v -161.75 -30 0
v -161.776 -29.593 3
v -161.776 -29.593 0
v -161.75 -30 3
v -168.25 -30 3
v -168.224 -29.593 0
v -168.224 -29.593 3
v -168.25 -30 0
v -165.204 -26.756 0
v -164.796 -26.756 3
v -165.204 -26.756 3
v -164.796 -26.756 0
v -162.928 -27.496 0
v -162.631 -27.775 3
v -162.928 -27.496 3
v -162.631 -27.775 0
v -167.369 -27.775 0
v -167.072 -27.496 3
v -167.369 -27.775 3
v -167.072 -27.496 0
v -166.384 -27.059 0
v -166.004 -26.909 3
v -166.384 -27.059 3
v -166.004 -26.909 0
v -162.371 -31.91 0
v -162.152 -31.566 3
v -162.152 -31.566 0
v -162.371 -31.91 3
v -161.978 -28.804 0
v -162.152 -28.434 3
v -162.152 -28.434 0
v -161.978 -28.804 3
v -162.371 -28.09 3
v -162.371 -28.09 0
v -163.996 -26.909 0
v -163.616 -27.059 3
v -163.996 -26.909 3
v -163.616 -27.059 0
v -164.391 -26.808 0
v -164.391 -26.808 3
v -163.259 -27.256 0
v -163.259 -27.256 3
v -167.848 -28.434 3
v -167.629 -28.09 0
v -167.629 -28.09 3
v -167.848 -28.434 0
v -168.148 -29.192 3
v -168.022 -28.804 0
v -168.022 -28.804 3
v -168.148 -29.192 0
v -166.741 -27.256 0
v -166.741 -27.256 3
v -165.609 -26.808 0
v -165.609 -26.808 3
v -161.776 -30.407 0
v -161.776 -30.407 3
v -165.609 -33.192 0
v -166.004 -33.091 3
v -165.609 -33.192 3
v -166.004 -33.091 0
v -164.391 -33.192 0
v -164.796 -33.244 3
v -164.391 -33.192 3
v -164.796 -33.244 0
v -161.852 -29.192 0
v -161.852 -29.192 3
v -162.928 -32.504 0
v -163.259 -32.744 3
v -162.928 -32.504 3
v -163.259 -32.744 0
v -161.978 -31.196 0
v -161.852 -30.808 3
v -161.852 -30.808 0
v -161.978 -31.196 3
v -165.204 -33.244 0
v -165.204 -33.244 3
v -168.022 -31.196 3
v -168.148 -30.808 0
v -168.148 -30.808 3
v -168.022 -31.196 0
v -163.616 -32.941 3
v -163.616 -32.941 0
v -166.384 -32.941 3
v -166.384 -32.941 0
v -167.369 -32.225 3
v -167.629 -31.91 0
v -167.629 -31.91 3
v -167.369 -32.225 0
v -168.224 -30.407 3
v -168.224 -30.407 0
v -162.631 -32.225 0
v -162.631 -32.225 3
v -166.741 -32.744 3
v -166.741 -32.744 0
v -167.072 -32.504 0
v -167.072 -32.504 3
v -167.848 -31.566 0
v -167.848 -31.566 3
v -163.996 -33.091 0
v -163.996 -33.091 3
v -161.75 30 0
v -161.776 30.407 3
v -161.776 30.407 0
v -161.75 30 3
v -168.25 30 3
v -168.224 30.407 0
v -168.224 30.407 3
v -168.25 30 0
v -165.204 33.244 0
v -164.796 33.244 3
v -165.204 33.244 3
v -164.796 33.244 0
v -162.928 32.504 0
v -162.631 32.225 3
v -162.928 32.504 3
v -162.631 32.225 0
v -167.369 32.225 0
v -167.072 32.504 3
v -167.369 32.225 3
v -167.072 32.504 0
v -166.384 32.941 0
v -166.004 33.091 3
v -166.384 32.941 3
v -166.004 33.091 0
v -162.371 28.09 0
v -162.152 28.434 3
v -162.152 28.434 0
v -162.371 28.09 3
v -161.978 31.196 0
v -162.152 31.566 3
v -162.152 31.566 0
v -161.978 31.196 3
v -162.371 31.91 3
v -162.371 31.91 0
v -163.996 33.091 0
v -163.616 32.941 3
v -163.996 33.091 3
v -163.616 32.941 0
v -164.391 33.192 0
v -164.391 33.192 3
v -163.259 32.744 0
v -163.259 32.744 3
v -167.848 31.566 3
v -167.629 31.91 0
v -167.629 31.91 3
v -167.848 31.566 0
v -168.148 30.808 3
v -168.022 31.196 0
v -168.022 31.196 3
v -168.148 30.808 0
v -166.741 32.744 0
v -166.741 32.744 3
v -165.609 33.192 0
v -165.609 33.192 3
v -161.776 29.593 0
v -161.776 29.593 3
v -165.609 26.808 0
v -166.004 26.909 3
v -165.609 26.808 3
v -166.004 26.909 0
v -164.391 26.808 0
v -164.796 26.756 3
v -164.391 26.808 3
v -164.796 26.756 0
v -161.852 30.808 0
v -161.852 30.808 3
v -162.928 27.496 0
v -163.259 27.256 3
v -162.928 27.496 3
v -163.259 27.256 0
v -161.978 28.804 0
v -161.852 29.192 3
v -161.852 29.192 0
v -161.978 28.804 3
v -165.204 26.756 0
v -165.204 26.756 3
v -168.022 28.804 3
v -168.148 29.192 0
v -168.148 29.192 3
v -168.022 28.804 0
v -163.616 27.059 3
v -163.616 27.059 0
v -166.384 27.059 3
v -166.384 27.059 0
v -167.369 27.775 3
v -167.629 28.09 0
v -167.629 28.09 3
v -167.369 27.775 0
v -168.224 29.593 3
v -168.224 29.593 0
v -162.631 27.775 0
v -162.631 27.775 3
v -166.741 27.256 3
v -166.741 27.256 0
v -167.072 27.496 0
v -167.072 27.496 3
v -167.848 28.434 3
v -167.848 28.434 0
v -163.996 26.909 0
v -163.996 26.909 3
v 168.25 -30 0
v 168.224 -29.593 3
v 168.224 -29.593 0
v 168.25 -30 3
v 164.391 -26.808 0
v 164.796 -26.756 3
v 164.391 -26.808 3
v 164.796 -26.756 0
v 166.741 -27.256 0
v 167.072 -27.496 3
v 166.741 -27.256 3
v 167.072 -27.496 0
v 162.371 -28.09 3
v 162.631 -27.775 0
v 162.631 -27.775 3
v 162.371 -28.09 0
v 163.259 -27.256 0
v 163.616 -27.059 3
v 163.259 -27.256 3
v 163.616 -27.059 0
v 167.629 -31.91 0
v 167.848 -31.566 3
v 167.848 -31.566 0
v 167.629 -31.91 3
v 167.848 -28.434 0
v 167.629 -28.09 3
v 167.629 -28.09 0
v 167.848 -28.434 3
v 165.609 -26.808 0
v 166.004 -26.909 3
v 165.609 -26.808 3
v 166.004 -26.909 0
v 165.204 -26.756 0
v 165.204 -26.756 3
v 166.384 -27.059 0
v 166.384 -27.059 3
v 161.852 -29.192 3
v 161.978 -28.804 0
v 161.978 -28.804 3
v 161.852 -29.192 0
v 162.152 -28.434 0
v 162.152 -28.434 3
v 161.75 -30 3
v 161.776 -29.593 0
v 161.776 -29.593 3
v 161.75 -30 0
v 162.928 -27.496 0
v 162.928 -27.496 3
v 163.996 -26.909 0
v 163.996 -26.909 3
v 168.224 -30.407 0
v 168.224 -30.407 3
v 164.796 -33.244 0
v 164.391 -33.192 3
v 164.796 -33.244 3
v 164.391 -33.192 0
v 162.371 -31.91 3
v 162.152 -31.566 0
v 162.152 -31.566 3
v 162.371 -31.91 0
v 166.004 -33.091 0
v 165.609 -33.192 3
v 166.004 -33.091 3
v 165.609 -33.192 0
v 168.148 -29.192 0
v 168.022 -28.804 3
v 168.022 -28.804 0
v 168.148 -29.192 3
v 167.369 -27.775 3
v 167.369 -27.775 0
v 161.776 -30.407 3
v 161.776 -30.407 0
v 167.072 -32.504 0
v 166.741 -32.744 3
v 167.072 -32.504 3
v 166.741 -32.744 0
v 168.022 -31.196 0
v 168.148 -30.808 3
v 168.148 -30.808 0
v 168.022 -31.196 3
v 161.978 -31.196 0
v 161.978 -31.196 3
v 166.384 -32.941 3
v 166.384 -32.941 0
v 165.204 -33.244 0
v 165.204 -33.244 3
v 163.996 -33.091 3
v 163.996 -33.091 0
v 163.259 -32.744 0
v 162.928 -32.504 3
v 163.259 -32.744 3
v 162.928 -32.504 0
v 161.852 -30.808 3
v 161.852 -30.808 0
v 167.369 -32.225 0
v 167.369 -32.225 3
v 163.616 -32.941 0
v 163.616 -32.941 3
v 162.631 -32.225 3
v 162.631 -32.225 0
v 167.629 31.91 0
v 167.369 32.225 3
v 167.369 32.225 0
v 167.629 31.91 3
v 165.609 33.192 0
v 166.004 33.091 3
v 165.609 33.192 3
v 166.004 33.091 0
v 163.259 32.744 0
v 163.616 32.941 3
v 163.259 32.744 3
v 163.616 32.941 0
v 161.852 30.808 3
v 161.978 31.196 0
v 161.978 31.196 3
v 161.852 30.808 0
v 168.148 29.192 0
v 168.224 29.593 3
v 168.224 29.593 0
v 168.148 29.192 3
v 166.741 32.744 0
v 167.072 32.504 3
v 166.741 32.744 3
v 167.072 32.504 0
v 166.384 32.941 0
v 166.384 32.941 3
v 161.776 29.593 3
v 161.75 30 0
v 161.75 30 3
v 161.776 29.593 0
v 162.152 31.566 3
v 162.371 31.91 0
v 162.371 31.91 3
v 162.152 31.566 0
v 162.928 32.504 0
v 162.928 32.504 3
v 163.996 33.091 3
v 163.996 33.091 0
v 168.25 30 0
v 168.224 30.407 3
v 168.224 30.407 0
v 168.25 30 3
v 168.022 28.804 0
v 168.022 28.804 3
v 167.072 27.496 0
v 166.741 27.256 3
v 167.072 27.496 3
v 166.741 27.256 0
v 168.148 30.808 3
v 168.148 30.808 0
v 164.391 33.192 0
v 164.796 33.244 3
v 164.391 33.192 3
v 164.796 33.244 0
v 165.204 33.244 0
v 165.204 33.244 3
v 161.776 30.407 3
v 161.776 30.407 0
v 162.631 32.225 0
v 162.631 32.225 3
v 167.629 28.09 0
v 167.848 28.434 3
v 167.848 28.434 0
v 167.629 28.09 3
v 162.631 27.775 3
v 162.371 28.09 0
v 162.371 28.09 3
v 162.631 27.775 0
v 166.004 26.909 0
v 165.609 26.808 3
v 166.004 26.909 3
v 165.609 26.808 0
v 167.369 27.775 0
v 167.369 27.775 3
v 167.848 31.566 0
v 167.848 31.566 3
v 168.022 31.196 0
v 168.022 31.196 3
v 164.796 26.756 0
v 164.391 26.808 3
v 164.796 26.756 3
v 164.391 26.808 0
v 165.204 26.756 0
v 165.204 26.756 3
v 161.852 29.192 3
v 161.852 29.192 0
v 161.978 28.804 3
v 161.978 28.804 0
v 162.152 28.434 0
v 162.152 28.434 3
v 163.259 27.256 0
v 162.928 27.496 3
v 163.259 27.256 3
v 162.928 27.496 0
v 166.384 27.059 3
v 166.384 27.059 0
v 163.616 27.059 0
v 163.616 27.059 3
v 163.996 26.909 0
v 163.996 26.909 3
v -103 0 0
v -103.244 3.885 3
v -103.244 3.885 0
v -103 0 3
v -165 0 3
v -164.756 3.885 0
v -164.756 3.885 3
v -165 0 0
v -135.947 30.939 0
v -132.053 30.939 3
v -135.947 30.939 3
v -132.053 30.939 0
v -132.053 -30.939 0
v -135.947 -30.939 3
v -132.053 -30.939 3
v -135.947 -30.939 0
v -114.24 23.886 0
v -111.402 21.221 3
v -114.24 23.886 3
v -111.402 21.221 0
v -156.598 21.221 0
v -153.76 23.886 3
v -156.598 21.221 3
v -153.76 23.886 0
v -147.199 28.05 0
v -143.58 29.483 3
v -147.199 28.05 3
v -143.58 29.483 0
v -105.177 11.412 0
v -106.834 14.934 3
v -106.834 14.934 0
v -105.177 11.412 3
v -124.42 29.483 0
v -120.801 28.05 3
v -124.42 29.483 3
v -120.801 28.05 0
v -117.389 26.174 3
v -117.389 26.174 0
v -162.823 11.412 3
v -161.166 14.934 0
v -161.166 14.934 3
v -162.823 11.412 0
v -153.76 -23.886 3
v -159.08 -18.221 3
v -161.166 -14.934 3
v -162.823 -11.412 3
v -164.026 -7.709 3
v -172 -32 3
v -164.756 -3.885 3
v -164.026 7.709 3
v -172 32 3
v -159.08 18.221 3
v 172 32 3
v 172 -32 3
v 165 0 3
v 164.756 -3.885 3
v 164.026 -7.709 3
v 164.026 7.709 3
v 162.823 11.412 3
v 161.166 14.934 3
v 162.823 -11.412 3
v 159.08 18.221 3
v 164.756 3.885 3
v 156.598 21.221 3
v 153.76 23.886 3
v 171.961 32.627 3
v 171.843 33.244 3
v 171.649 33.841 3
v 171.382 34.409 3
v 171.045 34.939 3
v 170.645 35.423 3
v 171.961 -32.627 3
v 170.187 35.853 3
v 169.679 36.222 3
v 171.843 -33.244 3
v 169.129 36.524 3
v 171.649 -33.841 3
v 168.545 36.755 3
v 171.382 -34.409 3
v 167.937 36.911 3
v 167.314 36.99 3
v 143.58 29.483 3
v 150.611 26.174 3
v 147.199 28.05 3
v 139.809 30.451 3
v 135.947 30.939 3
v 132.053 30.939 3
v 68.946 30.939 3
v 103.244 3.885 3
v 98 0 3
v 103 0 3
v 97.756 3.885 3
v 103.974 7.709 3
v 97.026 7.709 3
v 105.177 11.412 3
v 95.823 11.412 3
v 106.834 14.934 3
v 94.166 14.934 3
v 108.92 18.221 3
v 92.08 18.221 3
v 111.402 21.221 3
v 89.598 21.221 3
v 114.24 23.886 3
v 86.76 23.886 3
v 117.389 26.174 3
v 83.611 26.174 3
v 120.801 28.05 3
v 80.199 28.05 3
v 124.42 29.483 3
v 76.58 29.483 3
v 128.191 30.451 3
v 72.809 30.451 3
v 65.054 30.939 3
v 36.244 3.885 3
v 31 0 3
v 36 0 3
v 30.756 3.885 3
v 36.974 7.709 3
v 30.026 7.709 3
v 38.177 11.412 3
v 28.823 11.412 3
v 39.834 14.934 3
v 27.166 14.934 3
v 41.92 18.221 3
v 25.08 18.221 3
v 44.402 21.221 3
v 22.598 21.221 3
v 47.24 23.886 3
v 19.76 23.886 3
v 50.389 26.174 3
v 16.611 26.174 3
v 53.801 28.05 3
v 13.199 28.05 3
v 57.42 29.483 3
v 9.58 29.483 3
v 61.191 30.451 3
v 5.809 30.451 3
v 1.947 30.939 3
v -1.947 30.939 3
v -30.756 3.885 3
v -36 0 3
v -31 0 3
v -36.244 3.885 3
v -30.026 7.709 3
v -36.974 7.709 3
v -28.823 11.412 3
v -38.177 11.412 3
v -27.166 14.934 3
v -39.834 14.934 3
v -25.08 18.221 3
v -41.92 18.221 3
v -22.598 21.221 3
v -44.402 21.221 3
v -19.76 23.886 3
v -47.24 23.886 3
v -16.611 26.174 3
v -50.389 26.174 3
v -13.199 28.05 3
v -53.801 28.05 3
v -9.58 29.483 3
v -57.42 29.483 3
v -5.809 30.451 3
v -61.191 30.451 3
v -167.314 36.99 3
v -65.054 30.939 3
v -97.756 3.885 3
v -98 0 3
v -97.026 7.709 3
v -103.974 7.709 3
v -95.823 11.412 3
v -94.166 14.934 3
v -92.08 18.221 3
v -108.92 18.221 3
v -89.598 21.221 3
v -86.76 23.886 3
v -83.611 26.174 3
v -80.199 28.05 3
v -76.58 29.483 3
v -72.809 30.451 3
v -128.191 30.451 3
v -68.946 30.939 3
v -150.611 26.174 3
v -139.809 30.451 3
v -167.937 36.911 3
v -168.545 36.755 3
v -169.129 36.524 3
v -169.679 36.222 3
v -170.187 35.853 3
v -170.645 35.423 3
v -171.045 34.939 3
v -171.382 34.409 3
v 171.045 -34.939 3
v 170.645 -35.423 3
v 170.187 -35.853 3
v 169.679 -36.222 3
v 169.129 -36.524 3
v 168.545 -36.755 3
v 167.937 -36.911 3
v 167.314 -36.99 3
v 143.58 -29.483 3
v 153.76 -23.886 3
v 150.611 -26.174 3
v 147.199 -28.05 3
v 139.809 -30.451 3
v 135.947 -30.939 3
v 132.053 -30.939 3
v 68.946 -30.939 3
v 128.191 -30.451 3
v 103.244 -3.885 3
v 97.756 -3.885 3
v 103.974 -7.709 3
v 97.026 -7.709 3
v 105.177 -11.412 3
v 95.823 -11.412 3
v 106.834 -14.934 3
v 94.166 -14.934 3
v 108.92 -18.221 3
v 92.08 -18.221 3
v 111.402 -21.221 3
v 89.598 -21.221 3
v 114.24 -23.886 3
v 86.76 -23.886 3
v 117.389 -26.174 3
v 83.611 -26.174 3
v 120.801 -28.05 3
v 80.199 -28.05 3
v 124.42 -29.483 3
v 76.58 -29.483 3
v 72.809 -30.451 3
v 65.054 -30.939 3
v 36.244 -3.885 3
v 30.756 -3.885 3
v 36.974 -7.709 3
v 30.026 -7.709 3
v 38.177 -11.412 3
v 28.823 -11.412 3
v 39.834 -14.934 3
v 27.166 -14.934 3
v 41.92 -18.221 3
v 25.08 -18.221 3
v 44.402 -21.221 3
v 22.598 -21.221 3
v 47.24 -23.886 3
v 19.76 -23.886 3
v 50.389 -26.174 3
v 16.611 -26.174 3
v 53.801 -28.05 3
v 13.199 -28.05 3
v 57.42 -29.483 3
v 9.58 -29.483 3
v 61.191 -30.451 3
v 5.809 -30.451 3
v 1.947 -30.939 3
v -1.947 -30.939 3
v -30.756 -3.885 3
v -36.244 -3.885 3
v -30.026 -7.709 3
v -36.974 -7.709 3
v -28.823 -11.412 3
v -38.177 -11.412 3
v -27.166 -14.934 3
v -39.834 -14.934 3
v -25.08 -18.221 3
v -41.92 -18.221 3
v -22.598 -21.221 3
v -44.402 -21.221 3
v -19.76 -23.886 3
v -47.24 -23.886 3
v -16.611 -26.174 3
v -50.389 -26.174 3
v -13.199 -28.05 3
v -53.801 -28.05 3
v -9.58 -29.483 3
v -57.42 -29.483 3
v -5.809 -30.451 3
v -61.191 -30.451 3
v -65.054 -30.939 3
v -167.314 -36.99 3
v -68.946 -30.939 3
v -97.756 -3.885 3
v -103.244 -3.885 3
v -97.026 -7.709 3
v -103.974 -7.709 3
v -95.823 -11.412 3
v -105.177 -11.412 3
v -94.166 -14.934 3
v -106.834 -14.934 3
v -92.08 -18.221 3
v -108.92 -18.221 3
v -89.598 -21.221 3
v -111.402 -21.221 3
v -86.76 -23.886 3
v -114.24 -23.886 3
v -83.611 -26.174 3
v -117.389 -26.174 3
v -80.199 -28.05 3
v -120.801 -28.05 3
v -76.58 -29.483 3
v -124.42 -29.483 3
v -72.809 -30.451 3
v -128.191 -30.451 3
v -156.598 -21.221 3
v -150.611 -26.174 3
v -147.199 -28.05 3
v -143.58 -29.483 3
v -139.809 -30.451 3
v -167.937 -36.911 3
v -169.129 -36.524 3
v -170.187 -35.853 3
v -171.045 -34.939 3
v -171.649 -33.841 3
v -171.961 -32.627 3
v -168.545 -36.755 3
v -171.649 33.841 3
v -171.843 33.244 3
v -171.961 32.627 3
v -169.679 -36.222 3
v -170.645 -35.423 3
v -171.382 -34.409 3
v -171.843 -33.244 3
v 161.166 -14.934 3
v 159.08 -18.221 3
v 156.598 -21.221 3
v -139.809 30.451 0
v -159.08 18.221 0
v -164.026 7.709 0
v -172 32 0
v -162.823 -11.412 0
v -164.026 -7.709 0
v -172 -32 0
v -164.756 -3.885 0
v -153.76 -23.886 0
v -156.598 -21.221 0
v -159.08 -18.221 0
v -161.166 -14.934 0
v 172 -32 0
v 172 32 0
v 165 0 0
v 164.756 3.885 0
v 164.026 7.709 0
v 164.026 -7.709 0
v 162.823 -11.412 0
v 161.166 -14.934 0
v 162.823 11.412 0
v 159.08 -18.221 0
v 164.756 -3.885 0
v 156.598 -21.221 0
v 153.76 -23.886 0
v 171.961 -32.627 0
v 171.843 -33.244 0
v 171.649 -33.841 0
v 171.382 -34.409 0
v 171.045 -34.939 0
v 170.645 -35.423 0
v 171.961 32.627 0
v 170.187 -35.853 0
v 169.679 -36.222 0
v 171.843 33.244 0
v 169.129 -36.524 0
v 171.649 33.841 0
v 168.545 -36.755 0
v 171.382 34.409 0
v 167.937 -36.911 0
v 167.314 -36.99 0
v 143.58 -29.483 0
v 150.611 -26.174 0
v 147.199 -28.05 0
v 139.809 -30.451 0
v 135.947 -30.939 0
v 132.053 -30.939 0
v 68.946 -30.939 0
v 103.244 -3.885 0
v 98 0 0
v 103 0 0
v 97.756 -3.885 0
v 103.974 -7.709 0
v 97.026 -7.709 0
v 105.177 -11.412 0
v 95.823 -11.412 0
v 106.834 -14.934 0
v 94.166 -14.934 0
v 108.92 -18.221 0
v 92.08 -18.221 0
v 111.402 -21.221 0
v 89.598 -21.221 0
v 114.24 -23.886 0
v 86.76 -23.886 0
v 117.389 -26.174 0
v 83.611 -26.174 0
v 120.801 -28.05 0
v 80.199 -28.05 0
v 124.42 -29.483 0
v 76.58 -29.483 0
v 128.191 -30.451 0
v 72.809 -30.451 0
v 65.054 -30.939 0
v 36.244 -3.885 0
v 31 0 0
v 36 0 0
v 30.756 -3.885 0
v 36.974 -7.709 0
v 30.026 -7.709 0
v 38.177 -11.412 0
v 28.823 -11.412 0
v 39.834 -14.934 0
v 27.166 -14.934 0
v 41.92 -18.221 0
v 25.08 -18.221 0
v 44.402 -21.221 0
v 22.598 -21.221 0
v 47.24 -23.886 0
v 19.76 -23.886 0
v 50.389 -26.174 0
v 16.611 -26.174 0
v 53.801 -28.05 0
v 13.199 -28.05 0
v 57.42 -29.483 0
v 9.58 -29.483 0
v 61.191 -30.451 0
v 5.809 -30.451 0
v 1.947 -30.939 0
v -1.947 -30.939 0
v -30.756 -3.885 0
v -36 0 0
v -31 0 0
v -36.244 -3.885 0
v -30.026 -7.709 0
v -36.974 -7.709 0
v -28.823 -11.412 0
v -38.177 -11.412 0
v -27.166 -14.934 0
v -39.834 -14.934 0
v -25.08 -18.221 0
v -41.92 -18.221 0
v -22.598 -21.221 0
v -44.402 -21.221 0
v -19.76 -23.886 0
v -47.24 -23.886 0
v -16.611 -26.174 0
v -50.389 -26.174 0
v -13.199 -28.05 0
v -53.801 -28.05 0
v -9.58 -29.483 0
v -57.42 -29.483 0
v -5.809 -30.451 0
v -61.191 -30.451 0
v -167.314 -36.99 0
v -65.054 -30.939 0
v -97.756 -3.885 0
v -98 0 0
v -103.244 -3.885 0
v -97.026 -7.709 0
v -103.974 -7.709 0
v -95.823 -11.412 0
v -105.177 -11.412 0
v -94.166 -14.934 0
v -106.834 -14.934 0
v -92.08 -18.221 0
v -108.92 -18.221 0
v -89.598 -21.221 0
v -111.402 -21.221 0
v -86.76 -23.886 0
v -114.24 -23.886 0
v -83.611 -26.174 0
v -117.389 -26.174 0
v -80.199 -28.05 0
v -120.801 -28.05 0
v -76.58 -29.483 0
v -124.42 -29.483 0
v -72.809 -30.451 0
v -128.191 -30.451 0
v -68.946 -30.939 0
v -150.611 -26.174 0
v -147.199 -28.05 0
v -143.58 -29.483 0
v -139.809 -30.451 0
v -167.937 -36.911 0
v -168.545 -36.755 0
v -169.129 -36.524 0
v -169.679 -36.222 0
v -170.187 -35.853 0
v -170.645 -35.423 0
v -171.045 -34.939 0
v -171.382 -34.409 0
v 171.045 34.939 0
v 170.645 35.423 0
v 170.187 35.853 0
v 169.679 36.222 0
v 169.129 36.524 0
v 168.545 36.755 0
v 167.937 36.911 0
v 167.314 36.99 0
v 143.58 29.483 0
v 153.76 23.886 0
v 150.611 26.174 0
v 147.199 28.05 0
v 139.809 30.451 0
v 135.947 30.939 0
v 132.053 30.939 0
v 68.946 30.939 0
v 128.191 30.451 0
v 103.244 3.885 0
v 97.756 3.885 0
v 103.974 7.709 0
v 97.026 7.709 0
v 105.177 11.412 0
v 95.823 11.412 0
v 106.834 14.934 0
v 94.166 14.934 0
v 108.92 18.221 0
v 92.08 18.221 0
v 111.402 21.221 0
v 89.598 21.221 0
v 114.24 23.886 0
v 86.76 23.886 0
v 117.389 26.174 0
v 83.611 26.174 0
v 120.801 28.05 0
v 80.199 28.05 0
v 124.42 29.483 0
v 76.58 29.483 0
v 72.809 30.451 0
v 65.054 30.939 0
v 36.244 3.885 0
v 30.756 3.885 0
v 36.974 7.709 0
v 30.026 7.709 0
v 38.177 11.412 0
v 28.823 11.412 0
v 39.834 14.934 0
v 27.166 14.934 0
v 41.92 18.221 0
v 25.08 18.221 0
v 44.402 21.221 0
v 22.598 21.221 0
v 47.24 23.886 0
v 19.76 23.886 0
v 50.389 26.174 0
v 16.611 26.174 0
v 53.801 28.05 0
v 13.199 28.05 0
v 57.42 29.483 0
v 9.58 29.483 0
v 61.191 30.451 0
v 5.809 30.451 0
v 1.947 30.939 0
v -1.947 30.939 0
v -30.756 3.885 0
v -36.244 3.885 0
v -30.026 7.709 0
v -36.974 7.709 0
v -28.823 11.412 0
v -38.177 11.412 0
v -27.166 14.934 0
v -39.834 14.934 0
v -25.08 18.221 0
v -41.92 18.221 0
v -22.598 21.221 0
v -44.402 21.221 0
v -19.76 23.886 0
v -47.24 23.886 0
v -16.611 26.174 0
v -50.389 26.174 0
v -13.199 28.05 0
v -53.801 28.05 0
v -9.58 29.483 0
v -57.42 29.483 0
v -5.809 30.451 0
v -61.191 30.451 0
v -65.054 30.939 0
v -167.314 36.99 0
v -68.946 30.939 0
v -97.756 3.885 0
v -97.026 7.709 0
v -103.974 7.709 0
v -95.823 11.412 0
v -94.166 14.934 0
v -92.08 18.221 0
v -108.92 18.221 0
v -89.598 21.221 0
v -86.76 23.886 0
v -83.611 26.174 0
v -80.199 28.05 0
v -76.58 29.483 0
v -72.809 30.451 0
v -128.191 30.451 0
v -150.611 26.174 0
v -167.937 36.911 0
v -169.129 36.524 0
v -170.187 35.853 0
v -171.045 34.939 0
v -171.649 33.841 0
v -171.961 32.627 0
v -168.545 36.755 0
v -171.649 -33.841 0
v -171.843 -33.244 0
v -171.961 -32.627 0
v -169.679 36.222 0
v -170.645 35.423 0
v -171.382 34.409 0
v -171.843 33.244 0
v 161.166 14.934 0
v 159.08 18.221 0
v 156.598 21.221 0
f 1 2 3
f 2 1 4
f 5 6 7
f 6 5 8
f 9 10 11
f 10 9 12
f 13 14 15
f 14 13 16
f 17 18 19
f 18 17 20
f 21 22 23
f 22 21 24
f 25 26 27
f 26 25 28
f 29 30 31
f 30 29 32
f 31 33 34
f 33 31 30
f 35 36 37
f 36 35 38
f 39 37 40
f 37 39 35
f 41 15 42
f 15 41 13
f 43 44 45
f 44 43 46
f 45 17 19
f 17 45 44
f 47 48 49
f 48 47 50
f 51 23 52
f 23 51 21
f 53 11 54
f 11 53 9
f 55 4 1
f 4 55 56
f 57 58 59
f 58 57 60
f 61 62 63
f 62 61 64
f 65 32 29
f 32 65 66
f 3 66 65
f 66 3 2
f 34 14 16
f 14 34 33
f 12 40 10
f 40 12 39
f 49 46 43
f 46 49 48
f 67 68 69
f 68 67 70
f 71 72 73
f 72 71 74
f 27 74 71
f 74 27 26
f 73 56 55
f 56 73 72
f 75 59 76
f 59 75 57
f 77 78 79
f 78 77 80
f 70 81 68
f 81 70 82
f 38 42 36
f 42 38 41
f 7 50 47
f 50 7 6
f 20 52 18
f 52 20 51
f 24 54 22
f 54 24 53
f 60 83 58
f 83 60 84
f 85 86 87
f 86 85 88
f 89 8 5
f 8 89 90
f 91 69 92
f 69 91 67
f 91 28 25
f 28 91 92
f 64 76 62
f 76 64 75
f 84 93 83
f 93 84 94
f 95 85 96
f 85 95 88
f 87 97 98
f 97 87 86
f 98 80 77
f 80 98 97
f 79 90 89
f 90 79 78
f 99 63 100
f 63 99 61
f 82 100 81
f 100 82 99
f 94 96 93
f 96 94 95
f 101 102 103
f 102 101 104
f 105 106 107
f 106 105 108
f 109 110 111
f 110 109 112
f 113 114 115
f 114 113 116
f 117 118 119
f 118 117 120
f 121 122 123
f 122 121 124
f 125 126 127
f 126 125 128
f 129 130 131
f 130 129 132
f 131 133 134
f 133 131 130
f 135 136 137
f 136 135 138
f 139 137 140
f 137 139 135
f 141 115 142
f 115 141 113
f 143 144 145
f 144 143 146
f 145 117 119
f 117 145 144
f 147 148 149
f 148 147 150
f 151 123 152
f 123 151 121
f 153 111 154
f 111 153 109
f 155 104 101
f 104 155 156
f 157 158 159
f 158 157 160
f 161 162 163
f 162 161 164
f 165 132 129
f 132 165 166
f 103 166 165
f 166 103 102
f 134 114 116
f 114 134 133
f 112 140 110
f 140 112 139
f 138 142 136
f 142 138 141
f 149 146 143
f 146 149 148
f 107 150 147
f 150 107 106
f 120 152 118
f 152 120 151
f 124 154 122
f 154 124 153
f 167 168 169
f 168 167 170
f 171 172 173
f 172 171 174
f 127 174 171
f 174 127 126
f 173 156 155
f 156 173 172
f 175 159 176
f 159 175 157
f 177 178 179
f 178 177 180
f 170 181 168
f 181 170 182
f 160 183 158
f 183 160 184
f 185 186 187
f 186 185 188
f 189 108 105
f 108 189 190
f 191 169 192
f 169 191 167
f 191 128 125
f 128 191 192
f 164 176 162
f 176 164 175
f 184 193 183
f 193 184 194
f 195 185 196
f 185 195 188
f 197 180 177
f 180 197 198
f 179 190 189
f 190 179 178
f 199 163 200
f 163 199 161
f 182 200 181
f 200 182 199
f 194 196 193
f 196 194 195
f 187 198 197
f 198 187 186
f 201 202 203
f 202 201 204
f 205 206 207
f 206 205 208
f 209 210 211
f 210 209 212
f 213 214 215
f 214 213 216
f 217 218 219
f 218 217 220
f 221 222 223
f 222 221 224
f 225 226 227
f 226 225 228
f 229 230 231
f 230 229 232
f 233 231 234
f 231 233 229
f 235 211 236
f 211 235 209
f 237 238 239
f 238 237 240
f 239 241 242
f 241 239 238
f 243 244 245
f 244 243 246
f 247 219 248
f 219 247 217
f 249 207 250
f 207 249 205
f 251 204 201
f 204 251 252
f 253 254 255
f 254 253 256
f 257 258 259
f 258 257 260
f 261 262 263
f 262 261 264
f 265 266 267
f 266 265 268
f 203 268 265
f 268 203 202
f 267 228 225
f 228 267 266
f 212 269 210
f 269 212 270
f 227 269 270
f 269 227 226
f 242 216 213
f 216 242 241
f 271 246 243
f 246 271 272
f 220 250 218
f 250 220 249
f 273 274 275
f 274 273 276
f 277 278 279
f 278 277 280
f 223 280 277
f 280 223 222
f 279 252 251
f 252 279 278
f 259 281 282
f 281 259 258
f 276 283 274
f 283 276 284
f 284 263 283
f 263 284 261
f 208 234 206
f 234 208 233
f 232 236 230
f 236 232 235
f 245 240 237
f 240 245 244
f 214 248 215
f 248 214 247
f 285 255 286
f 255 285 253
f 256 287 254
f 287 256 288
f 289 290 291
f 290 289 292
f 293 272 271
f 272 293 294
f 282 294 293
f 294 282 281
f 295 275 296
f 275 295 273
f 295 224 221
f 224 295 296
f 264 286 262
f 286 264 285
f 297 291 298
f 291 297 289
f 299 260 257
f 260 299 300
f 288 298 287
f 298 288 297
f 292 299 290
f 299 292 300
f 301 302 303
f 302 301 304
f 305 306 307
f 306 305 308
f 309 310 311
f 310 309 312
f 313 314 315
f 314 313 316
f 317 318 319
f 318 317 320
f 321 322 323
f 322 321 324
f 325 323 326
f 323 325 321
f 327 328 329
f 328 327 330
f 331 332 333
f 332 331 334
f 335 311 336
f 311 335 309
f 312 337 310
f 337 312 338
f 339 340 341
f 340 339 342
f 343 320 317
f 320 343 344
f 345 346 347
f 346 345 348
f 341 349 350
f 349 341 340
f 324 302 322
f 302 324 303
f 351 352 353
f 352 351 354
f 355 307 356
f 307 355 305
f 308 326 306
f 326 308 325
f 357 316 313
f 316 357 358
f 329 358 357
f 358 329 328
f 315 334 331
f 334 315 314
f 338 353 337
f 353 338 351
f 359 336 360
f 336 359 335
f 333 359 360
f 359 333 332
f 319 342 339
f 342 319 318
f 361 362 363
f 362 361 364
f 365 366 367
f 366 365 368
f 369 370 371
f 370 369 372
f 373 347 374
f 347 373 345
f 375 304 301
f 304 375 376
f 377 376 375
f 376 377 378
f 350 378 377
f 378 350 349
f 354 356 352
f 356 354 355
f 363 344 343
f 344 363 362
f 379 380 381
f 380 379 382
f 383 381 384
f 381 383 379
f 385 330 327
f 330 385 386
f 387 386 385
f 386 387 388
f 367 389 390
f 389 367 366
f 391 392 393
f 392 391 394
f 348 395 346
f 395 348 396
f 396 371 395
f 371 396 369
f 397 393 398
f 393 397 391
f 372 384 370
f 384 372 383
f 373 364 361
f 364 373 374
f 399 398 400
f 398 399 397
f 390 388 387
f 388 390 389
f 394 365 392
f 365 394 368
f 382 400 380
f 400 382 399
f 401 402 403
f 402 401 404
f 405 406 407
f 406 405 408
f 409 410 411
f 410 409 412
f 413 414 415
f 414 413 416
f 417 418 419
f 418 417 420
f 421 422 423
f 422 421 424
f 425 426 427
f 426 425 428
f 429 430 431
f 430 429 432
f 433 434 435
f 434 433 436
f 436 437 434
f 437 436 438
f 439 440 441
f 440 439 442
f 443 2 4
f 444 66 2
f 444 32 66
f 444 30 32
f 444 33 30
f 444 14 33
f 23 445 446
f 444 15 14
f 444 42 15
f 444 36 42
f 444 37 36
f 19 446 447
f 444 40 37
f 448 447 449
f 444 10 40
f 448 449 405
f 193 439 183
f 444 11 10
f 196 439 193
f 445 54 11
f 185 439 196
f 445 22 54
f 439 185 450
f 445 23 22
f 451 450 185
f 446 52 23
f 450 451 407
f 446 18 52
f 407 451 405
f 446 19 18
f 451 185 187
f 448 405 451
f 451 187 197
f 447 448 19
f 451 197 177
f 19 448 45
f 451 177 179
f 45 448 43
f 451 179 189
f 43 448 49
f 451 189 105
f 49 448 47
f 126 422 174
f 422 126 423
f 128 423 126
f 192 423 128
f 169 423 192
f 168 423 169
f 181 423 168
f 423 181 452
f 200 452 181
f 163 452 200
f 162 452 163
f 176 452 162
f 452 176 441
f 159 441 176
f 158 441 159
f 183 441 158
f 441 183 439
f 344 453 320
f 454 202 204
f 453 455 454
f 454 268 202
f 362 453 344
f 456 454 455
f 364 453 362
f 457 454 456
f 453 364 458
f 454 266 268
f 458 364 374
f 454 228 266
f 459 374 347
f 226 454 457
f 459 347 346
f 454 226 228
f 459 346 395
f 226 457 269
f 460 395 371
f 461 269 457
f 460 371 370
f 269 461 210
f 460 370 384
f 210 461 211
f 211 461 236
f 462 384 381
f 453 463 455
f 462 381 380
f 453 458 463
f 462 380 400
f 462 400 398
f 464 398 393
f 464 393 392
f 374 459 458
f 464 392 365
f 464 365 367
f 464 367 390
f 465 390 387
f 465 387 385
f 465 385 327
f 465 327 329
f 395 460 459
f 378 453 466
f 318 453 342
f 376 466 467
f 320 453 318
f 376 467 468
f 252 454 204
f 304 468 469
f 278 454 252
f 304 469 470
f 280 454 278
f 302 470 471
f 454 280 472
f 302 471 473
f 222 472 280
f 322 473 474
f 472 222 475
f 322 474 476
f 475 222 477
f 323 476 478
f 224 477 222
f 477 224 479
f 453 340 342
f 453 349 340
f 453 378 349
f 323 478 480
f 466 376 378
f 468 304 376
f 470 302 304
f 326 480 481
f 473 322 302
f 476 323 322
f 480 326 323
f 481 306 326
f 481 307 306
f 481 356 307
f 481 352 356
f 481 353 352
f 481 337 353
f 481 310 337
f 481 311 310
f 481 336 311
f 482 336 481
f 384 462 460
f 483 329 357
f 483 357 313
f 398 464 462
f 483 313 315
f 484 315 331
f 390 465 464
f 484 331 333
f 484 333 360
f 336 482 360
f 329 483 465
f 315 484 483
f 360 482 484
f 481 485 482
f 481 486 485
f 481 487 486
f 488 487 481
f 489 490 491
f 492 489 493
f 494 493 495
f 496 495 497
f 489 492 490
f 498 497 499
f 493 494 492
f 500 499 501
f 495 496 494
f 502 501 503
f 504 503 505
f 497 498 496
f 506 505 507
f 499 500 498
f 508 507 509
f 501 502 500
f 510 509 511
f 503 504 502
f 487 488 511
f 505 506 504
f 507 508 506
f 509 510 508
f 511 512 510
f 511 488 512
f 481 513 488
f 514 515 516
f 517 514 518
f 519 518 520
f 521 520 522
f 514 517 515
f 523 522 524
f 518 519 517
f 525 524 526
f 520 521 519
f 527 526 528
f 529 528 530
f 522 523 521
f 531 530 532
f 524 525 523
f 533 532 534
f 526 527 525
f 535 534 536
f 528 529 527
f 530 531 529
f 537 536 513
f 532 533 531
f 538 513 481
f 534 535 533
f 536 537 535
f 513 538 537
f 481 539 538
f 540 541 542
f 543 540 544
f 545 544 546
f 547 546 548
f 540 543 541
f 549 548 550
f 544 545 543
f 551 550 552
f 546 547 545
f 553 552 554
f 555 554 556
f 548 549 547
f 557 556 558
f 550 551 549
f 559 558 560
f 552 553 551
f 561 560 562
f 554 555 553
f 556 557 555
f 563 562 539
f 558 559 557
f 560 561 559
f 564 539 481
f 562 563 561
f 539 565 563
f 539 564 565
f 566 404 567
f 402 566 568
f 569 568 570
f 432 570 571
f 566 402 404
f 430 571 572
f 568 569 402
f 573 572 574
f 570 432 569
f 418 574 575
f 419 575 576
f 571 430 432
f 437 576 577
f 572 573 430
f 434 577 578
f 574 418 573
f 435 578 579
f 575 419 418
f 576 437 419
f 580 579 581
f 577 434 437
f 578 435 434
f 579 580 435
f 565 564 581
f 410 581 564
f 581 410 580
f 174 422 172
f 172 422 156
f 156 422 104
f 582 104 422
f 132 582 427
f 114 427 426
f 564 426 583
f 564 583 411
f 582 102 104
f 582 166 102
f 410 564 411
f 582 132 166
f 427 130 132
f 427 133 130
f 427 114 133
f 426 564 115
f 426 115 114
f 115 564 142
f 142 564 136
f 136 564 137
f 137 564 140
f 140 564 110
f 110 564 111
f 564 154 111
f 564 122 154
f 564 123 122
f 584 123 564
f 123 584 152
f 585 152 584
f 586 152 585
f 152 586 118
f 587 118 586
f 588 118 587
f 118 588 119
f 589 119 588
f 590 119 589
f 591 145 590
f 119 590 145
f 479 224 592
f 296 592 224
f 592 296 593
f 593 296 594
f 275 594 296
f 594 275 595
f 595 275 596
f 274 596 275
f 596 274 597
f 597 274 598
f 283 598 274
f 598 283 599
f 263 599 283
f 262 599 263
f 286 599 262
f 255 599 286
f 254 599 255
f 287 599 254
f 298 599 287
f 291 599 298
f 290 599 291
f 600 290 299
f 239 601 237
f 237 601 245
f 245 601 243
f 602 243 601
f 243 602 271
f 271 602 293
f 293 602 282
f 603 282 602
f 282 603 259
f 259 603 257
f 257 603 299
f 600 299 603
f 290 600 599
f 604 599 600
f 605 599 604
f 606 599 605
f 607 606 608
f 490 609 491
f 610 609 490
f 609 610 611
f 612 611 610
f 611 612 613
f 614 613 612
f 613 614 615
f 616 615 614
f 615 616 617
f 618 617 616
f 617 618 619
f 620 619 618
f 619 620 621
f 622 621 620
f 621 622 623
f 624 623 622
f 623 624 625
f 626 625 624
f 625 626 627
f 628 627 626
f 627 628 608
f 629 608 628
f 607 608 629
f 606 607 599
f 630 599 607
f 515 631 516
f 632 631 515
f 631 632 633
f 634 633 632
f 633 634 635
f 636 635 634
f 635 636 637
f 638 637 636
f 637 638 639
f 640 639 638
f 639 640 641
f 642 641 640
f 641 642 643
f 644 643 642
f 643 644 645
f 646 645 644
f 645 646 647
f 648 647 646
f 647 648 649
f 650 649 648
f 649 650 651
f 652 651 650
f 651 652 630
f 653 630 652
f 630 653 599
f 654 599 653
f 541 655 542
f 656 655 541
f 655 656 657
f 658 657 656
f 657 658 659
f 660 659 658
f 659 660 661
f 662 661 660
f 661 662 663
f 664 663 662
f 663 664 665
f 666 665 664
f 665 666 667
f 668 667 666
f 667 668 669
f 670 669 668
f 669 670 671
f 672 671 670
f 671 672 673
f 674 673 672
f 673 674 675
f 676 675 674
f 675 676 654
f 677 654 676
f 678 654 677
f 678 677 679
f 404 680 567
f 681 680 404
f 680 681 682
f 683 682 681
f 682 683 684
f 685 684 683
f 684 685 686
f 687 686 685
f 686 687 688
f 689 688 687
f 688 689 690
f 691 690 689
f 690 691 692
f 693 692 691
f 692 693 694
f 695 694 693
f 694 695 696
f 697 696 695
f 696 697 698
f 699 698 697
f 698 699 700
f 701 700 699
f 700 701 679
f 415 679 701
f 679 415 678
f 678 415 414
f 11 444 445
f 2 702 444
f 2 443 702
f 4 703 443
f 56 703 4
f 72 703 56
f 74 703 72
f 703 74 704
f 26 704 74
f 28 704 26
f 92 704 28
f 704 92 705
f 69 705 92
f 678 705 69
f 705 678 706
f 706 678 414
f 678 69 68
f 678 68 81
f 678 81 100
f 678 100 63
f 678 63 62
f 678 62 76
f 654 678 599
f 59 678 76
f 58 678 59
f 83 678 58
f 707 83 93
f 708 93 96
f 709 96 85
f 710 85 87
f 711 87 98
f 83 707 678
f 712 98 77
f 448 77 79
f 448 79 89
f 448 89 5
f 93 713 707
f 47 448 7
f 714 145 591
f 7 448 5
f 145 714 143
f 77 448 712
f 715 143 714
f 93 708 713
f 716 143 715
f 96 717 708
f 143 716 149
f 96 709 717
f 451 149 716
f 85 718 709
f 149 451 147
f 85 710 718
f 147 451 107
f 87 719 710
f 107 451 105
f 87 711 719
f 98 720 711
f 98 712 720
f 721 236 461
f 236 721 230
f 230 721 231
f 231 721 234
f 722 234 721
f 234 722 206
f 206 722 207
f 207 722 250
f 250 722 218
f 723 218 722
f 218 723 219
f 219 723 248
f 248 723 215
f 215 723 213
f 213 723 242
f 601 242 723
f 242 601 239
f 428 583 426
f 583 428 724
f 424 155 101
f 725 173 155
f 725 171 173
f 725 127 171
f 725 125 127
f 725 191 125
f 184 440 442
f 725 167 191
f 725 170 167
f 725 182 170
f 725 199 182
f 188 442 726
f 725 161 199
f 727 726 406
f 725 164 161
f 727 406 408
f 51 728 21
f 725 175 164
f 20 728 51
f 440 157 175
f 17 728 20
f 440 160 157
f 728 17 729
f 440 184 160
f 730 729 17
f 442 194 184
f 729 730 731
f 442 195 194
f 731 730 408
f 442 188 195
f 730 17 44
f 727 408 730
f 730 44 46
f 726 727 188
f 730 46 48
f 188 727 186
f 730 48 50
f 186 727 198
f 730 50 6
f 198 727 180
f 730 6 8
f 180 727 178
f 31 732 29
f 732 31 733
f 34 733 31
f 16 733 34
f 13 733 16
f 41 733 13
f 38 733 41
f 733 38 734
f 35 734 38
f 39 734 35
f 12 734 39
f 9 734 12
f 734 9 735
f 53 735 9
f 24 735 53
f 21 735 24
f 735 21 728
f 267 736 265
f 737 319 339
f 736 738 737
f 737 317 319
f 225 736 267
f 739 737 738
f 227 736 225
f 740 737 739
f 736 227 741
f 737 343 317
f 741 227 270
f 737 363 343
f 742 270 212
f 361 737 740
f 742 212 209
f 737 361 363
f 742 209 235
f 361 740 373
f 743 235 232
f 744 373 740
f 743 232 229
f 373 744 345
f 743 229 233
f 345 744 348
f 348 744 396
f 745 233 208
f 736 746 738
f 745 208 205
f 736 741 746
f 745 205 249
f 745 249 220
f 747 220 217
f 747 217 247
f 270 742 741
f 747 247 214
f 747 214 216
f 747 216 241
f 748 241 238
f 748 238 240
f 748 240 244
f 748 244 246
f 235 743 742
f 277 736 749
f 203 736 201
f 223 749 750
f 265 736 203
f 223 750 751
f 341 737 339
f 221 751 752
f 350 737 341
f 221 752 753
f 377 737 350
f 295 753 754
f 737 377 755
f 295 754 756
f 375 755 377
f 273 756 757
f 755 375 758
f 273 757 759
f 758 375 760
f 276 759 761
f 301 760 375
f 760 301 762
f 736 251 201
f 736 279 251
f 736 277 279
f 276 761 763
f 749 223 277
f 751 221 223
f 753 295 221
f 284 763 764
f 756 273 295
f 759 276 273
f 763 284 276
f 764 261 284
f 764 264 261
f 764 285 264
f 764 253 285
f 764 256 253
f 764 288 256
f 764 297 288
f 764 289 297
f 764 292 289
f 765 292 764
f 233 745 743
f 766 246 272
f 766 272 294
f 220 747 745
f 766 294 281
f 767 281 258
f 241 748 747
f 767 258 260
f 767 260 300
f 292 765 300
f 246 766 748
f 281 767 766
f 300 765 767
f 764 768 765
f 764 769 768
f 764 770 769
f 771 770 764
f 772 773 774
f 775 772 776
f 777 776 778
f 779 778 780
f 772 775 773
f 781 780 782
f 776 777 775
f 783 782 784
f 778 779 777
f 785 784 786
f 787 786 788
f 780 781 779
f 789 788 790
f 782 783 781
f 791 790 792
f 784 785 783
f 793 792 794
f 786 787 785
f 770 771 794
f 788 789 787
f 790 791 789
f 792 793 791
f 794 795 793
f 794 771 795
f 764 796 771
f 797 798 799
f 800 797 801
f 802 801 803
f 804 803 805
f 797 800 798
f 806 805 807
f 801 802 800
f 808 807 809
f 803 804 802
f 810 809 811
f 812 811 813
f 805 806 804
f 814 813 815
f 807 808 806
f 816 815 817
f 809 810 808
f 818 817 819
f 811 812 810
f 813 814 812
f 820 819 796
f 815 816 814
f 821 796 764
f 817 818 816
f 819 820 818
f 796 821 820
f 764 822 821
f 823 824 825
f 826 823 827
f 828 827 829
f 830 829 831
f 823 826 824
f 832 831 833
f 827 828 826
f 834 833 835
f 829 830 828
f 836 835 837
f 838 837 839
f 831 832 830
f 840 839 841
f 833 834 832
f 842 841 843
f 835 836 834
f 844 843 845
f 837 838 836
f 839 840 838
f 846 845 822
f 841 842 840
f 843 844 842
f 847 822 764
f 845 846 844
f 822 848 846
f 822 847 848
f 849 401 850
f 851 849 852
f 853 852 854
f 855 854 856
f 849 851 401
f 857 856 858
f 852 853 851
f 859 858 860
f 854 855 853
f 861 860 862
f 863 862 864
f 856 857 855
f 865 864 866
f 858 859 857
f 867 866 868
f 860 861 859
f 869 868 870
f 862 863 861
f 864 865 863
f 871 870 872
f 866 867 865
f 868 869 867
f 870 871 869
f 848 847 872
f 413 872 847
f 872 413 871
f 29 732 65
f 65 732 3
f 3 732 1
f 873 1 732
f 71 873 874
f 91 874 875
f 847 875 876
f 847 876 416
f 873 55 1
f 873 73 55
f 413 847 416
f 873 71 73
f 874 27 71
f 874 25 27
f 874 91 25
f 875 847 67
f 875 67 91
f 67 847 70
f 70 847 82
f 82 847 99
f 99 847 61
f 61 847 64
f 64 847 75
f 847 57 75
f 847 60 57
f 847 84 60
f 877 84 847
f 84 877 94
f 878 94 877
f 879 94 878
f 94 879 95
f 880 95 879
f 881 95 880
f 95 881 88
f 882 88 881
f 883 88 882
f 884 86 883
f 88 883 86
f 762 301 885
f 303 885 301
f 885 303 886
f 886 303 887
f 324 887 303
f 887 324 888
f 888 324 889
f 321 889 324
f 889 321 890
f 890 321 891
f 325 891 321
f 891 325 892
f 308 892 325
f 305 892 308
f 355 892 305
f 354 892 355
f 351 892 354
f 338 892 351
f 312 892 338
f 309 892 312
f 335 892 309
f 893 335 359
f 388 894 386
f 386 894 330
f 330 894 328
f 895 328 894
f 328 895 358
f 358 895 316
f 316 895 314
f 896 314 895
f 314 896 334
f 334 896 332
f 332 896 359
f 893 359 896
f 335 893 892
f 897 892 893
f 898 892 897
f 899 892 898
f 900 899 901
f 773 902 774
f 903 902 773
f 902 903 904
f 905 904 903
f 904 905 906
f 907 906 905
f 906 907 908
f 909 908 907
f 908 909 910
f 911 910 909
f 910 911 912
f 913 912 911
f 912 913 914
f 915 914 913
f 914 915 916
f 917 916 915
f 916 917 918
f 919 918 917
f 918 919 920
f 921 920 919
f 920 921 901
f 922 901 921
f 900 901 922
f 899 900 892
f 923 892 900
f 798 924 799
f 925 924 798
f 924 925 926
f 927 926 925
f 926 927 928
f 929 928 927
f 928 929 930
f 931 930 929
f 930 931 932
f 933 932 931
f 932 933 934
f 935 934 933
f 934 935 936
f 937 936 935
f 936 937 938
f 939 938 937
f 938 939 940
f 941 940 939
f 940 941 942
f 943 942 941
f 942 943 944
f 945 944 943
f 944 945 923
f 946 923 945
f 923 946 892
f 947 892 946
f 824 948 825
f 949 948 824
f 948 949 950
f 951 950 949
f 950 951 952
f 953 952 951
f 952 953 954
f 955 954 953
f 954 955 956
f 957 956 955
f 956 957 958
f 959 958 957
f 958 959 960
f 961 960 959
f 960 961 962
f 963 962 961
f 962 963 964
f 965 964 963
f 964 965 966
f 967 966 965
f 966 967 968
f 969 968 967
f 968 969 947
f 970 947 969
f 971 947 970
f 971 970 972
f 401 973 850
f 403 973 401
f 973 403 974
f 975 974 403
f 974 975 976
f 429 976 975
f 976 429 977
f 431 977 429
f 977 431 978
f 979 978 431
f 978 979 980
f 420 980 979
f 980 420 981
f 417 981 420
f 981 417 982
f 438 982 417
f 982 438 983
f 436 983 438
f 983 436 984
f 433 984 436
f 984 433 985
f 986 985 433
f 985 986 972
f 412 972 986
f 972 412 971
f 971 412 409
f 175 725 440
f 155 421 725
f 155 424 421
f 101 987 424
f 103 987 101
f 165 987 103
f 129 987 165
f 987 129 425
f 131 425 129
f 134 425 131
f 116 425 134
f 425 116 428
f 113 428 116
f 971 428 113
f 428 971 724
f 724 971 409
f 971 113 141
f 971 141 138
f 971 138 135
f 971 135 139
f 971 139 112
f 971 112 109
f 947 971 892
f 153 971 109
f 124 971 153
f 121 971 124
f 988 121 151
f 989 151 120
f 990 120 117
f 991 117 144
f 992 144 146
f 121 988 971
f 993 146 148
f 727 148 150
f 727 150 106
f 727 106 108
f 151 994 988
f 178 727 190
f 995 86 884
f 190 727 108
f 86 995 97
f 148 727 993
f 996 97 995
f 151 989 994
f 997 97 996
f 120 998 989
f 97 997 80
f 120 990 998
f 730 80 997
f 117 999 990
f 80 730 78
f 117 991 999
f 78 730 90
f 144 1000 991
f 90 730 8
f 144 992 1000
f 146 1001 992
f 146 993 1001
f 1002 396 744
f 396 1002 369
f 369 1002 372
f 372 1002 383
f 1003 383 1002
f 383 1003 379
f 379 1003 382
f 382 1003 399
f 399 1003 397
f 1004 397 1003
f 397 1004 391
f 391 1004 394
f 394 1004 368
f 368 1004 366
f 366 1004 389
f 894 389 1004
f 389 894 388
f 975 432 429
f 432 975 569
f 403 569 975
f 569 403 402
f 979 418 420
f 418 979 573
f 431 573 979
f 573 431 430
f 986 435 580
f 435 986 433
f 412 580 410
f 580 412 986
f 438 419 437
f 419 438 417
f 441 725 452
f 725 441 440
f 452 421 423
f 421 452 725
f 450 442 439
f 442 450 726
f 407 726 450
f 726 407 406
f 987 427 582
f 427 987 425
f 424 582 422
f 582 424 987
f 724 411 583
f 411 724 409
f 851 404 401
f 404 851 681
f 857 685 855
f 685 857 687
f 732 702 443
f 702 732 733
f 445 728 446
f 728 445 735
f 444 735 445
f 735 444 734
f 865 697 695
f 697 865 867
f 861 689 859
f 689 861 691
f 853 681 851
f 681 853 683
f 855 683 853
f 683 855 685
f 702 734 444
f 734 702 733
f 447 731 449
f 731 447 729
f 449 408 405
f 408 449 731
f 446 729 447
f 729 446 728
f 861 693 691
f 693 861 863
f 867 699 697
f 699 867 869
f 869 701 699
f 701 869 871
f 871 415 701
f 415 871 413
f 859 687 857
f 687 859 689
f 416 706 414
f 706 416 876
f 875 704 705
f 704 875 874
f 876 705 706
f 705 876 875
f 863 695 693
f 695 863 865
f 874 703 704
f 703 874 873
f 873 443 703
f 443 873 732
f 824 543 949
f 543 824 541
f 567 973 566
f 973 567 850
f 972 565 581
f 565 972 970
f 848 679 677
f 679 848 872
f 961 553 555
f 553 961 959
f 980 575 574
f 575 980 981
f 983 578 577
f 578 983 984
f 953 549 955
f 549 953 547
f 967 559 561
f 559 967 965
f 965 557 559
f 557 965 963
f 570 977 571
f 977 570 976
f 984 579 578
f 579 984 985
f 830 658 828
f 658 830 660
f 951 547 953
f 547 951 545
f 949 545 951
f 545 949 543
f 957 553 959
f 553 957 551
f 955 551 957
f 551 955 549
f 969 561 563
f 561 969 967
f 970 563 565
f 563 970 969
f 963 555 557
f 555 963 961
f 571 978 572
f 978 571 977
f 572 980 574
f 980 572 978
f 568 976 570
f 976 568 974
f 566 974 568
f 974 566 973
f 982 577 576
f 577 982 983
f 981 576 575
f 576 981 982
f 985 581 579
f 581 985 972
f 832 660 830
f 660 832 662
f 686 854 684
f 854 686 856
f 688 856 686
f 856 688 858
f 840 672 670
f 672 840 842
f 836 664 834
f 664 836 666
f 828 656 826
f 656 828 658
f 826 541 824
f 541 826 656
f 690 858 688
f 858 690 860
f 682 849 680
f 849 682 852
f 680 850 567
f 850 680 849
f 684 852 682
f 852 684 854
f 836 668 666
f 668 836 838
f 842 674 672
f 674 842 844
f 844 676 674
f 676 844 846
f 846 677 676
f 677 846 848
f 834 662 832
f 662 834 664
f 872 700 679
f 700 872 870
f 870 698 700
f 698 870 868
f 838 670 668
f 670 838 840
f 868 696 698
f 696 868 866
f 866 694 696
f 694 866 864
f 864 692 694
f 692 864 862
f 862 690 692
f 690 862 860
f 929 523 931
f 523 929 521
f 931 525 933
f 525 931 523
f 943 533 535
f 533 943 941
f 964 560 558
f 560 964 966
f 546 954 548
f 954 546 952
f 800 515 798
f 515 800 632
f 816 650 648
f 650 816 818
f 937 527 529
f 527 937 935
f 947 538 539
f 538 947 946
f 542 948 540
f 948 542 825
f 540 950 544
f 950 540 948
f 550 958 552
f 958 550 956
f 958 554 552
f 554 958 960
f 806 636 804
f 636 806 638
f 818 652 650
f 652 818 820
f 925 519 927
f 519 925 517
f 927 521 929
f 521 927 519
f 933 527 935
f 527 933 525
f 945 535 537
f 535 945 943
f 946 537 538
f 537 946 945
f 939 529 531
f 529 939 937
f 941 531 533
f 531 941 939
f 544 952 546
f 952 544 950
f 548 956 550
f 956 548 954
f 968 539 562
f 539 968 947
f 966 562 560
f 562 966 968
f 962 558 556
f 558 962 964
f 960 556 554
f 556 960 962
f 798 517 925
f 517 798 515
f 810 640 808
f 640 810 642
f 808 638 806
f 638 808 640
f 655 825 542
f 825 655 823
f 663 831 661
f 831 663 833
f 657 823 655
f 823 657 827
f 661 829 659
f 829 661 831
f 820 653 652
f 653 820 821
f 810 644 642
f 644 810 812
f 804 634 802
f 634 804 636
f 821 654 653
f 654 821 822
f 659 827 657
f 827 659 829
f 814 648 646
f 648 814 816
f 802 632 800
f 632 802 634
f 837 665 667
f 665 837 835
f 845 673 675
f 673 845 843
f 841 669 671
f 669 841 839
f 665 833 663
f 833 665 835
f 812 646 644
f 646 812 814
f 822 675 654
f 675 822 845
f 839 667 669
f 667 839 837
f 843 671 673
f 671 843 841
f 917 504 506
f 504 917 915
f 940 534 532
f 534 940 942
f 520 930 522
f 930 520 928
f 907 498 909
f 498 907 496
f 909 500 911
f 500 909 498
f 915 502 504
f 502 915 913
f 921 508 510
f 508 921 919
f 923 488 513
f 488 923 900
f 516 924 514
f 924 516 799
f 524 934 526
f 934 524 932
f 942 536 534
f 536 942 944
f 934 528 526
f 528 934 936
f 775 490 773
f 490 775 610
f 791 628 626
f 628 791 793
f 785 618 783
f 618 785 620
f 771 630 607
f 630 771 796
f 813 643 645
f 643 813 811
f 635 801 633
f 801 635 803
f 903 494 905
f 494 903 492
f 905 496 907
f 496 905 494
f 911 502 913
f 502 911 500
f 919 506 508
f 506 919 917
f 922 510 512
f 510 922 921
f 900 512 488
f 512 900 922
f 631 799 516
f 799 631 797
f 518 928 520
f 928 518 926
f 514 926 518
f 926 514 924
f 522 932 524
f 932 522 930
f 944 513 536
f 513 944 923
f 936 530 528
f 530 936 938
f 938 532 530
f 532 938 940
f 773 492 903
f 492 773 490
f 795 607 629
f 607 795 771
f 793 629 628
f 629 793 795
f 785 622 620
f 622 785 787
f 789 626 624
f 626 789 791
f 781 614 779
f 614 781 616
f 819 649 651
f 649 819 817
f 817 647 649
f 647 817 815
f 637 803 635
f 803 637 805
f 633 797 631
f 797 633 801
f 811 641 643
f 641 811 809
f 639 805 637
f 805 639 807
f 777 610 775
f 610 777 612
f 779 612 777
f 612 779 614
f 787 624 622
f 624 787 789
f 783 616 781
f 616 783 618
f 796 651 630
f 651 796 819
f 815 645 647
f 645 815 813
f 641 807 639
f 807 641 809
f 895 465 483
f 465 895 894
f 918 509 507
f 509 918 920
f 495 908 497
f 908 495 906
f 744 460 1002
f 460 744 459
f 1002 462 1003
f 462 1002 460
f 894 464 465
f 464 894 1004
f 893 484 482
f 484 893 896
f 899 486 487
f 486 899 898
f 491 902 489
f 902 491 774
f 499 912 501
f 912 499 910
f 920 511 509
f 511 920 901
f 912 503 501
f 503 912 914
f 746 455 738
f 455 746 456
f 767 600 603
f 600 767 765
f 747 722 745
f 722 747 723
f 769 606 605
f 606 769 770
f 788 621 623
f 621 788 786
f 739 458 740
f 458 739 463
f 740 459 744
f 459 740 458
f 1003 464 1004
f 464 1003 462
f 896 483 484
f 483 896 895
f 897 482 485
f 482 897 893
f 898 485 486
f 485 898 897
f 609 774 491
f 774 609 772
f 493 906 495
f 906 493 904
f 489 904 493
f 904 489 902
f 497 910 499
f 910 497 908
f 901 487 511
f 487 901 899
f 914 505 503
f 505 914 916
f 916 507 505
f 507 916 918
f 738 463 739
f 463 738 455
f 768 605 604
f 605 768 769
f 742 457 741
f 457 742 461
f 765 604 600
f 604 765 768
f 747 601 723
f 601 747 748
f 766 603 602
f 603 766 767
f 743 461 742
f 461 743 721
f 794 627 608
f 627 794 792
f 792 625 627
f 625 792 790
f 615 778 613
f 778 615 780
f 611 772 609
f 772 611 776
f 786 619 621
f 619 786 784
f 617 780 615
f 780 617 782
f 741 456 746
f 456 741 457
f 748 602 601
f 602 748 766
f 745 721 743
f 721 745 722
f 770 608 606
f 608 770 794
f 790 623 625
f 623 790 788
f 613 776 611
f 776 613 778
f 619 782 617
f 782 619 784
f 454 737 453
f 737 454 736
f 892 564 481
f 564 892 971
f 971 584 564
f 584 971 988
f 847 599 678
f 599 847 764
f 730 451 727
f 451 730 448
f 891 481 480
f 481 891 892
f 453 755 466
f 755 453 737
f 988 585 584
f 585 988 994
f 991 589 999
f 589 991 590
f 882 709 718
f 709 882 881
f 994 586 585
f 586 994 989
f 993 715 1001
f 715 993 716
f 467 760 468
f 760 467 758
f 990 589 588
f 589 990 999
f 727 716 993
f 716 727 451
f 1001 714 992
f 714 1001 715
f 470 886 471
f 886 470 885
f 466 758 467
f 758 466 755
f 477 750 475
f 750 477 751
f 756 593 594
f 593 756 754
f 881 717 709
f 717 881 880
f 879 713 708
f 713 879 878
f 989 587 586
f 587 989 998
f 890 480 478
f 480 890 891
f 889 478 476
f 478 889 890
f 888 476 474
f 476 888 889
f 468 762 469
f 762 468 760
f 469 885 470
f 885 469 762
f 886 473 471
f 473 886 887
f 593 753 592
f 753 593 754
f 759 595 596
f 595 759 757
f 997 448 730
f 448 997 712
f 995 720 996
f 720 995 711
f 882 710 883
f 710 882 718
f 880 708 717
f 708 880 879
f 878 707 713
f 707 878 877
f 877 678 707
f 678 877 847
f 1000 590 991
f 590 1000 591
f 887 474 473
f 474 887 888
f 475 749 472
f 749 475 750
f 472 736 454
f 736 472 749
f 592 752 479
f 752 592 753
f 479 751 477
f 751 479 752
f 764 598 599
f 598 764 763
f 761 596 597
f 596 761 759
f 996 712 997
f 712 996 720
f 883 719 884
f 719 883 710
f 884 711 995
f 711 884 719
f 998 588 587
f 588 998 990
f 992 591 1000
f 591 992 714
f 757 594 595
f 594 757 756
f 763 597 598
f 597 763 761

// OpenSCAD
$fn = 50;


difference() {
	union() {
		hull() {
			translate(v = [-167.0000000000, 32.0000000000, 0]) {
				cylinder(h = 3, r = 5);
			}
			translate(v = [167.0000000000, 32.0000000000, 0]) {
				cylinder(h = 3, r = 5);
			}
			translate(v = [-167.0000000000, -32.0000000000, 0]) {
				cylinder(h = 3, r = 5);
			}
			translate(v = [167.0000000000, -32.0000000000, 0]) {
				cylinder(h = 3, r = 5);
			}
		}
	}
	union() {
		#translate(v = [-165.0000000000, -30.0000000000, -100.0000000000]) {
			cylinder(h = 200, r = 3.2500000000);
		}
		#translate(v = [-165.0000000000, 30.0000000000, -100.0000000000]) {
			cylinder(h = 200, r = 3.2500000000);
		}
		#translate(v = [165.0000000000, -30.0000000000, -100.0000000000]) {
			cylinder(h = 200, r = 3.2500000000);
		}
		#translate(v = [165.0000000000, 30.0000000000, -100.0000000000]) {
			cylinder(h = 200, r = 3.2500000000);
		}
		#translate(v = [-134.0000000000, 0, 0]) {
			cylinder(h = 3, r = 31.0000000000);
		}
		#translate(v = [-67.0000000000, 0, 0]) {
			cylinder(h = 3, r = 31.0000000000);
		}
		#cylinder(h = 3, r = 31.0000000000);
		#translate(v = [67.0000000000, 0, 0]) {
			cylinder(h = 3, r = 31.0000000000);
		}
		#translate(v = [134.0000000000, 0, 0]) {
			cylinder(h = 3, r = 31.0000000000);
		}
	}
}
